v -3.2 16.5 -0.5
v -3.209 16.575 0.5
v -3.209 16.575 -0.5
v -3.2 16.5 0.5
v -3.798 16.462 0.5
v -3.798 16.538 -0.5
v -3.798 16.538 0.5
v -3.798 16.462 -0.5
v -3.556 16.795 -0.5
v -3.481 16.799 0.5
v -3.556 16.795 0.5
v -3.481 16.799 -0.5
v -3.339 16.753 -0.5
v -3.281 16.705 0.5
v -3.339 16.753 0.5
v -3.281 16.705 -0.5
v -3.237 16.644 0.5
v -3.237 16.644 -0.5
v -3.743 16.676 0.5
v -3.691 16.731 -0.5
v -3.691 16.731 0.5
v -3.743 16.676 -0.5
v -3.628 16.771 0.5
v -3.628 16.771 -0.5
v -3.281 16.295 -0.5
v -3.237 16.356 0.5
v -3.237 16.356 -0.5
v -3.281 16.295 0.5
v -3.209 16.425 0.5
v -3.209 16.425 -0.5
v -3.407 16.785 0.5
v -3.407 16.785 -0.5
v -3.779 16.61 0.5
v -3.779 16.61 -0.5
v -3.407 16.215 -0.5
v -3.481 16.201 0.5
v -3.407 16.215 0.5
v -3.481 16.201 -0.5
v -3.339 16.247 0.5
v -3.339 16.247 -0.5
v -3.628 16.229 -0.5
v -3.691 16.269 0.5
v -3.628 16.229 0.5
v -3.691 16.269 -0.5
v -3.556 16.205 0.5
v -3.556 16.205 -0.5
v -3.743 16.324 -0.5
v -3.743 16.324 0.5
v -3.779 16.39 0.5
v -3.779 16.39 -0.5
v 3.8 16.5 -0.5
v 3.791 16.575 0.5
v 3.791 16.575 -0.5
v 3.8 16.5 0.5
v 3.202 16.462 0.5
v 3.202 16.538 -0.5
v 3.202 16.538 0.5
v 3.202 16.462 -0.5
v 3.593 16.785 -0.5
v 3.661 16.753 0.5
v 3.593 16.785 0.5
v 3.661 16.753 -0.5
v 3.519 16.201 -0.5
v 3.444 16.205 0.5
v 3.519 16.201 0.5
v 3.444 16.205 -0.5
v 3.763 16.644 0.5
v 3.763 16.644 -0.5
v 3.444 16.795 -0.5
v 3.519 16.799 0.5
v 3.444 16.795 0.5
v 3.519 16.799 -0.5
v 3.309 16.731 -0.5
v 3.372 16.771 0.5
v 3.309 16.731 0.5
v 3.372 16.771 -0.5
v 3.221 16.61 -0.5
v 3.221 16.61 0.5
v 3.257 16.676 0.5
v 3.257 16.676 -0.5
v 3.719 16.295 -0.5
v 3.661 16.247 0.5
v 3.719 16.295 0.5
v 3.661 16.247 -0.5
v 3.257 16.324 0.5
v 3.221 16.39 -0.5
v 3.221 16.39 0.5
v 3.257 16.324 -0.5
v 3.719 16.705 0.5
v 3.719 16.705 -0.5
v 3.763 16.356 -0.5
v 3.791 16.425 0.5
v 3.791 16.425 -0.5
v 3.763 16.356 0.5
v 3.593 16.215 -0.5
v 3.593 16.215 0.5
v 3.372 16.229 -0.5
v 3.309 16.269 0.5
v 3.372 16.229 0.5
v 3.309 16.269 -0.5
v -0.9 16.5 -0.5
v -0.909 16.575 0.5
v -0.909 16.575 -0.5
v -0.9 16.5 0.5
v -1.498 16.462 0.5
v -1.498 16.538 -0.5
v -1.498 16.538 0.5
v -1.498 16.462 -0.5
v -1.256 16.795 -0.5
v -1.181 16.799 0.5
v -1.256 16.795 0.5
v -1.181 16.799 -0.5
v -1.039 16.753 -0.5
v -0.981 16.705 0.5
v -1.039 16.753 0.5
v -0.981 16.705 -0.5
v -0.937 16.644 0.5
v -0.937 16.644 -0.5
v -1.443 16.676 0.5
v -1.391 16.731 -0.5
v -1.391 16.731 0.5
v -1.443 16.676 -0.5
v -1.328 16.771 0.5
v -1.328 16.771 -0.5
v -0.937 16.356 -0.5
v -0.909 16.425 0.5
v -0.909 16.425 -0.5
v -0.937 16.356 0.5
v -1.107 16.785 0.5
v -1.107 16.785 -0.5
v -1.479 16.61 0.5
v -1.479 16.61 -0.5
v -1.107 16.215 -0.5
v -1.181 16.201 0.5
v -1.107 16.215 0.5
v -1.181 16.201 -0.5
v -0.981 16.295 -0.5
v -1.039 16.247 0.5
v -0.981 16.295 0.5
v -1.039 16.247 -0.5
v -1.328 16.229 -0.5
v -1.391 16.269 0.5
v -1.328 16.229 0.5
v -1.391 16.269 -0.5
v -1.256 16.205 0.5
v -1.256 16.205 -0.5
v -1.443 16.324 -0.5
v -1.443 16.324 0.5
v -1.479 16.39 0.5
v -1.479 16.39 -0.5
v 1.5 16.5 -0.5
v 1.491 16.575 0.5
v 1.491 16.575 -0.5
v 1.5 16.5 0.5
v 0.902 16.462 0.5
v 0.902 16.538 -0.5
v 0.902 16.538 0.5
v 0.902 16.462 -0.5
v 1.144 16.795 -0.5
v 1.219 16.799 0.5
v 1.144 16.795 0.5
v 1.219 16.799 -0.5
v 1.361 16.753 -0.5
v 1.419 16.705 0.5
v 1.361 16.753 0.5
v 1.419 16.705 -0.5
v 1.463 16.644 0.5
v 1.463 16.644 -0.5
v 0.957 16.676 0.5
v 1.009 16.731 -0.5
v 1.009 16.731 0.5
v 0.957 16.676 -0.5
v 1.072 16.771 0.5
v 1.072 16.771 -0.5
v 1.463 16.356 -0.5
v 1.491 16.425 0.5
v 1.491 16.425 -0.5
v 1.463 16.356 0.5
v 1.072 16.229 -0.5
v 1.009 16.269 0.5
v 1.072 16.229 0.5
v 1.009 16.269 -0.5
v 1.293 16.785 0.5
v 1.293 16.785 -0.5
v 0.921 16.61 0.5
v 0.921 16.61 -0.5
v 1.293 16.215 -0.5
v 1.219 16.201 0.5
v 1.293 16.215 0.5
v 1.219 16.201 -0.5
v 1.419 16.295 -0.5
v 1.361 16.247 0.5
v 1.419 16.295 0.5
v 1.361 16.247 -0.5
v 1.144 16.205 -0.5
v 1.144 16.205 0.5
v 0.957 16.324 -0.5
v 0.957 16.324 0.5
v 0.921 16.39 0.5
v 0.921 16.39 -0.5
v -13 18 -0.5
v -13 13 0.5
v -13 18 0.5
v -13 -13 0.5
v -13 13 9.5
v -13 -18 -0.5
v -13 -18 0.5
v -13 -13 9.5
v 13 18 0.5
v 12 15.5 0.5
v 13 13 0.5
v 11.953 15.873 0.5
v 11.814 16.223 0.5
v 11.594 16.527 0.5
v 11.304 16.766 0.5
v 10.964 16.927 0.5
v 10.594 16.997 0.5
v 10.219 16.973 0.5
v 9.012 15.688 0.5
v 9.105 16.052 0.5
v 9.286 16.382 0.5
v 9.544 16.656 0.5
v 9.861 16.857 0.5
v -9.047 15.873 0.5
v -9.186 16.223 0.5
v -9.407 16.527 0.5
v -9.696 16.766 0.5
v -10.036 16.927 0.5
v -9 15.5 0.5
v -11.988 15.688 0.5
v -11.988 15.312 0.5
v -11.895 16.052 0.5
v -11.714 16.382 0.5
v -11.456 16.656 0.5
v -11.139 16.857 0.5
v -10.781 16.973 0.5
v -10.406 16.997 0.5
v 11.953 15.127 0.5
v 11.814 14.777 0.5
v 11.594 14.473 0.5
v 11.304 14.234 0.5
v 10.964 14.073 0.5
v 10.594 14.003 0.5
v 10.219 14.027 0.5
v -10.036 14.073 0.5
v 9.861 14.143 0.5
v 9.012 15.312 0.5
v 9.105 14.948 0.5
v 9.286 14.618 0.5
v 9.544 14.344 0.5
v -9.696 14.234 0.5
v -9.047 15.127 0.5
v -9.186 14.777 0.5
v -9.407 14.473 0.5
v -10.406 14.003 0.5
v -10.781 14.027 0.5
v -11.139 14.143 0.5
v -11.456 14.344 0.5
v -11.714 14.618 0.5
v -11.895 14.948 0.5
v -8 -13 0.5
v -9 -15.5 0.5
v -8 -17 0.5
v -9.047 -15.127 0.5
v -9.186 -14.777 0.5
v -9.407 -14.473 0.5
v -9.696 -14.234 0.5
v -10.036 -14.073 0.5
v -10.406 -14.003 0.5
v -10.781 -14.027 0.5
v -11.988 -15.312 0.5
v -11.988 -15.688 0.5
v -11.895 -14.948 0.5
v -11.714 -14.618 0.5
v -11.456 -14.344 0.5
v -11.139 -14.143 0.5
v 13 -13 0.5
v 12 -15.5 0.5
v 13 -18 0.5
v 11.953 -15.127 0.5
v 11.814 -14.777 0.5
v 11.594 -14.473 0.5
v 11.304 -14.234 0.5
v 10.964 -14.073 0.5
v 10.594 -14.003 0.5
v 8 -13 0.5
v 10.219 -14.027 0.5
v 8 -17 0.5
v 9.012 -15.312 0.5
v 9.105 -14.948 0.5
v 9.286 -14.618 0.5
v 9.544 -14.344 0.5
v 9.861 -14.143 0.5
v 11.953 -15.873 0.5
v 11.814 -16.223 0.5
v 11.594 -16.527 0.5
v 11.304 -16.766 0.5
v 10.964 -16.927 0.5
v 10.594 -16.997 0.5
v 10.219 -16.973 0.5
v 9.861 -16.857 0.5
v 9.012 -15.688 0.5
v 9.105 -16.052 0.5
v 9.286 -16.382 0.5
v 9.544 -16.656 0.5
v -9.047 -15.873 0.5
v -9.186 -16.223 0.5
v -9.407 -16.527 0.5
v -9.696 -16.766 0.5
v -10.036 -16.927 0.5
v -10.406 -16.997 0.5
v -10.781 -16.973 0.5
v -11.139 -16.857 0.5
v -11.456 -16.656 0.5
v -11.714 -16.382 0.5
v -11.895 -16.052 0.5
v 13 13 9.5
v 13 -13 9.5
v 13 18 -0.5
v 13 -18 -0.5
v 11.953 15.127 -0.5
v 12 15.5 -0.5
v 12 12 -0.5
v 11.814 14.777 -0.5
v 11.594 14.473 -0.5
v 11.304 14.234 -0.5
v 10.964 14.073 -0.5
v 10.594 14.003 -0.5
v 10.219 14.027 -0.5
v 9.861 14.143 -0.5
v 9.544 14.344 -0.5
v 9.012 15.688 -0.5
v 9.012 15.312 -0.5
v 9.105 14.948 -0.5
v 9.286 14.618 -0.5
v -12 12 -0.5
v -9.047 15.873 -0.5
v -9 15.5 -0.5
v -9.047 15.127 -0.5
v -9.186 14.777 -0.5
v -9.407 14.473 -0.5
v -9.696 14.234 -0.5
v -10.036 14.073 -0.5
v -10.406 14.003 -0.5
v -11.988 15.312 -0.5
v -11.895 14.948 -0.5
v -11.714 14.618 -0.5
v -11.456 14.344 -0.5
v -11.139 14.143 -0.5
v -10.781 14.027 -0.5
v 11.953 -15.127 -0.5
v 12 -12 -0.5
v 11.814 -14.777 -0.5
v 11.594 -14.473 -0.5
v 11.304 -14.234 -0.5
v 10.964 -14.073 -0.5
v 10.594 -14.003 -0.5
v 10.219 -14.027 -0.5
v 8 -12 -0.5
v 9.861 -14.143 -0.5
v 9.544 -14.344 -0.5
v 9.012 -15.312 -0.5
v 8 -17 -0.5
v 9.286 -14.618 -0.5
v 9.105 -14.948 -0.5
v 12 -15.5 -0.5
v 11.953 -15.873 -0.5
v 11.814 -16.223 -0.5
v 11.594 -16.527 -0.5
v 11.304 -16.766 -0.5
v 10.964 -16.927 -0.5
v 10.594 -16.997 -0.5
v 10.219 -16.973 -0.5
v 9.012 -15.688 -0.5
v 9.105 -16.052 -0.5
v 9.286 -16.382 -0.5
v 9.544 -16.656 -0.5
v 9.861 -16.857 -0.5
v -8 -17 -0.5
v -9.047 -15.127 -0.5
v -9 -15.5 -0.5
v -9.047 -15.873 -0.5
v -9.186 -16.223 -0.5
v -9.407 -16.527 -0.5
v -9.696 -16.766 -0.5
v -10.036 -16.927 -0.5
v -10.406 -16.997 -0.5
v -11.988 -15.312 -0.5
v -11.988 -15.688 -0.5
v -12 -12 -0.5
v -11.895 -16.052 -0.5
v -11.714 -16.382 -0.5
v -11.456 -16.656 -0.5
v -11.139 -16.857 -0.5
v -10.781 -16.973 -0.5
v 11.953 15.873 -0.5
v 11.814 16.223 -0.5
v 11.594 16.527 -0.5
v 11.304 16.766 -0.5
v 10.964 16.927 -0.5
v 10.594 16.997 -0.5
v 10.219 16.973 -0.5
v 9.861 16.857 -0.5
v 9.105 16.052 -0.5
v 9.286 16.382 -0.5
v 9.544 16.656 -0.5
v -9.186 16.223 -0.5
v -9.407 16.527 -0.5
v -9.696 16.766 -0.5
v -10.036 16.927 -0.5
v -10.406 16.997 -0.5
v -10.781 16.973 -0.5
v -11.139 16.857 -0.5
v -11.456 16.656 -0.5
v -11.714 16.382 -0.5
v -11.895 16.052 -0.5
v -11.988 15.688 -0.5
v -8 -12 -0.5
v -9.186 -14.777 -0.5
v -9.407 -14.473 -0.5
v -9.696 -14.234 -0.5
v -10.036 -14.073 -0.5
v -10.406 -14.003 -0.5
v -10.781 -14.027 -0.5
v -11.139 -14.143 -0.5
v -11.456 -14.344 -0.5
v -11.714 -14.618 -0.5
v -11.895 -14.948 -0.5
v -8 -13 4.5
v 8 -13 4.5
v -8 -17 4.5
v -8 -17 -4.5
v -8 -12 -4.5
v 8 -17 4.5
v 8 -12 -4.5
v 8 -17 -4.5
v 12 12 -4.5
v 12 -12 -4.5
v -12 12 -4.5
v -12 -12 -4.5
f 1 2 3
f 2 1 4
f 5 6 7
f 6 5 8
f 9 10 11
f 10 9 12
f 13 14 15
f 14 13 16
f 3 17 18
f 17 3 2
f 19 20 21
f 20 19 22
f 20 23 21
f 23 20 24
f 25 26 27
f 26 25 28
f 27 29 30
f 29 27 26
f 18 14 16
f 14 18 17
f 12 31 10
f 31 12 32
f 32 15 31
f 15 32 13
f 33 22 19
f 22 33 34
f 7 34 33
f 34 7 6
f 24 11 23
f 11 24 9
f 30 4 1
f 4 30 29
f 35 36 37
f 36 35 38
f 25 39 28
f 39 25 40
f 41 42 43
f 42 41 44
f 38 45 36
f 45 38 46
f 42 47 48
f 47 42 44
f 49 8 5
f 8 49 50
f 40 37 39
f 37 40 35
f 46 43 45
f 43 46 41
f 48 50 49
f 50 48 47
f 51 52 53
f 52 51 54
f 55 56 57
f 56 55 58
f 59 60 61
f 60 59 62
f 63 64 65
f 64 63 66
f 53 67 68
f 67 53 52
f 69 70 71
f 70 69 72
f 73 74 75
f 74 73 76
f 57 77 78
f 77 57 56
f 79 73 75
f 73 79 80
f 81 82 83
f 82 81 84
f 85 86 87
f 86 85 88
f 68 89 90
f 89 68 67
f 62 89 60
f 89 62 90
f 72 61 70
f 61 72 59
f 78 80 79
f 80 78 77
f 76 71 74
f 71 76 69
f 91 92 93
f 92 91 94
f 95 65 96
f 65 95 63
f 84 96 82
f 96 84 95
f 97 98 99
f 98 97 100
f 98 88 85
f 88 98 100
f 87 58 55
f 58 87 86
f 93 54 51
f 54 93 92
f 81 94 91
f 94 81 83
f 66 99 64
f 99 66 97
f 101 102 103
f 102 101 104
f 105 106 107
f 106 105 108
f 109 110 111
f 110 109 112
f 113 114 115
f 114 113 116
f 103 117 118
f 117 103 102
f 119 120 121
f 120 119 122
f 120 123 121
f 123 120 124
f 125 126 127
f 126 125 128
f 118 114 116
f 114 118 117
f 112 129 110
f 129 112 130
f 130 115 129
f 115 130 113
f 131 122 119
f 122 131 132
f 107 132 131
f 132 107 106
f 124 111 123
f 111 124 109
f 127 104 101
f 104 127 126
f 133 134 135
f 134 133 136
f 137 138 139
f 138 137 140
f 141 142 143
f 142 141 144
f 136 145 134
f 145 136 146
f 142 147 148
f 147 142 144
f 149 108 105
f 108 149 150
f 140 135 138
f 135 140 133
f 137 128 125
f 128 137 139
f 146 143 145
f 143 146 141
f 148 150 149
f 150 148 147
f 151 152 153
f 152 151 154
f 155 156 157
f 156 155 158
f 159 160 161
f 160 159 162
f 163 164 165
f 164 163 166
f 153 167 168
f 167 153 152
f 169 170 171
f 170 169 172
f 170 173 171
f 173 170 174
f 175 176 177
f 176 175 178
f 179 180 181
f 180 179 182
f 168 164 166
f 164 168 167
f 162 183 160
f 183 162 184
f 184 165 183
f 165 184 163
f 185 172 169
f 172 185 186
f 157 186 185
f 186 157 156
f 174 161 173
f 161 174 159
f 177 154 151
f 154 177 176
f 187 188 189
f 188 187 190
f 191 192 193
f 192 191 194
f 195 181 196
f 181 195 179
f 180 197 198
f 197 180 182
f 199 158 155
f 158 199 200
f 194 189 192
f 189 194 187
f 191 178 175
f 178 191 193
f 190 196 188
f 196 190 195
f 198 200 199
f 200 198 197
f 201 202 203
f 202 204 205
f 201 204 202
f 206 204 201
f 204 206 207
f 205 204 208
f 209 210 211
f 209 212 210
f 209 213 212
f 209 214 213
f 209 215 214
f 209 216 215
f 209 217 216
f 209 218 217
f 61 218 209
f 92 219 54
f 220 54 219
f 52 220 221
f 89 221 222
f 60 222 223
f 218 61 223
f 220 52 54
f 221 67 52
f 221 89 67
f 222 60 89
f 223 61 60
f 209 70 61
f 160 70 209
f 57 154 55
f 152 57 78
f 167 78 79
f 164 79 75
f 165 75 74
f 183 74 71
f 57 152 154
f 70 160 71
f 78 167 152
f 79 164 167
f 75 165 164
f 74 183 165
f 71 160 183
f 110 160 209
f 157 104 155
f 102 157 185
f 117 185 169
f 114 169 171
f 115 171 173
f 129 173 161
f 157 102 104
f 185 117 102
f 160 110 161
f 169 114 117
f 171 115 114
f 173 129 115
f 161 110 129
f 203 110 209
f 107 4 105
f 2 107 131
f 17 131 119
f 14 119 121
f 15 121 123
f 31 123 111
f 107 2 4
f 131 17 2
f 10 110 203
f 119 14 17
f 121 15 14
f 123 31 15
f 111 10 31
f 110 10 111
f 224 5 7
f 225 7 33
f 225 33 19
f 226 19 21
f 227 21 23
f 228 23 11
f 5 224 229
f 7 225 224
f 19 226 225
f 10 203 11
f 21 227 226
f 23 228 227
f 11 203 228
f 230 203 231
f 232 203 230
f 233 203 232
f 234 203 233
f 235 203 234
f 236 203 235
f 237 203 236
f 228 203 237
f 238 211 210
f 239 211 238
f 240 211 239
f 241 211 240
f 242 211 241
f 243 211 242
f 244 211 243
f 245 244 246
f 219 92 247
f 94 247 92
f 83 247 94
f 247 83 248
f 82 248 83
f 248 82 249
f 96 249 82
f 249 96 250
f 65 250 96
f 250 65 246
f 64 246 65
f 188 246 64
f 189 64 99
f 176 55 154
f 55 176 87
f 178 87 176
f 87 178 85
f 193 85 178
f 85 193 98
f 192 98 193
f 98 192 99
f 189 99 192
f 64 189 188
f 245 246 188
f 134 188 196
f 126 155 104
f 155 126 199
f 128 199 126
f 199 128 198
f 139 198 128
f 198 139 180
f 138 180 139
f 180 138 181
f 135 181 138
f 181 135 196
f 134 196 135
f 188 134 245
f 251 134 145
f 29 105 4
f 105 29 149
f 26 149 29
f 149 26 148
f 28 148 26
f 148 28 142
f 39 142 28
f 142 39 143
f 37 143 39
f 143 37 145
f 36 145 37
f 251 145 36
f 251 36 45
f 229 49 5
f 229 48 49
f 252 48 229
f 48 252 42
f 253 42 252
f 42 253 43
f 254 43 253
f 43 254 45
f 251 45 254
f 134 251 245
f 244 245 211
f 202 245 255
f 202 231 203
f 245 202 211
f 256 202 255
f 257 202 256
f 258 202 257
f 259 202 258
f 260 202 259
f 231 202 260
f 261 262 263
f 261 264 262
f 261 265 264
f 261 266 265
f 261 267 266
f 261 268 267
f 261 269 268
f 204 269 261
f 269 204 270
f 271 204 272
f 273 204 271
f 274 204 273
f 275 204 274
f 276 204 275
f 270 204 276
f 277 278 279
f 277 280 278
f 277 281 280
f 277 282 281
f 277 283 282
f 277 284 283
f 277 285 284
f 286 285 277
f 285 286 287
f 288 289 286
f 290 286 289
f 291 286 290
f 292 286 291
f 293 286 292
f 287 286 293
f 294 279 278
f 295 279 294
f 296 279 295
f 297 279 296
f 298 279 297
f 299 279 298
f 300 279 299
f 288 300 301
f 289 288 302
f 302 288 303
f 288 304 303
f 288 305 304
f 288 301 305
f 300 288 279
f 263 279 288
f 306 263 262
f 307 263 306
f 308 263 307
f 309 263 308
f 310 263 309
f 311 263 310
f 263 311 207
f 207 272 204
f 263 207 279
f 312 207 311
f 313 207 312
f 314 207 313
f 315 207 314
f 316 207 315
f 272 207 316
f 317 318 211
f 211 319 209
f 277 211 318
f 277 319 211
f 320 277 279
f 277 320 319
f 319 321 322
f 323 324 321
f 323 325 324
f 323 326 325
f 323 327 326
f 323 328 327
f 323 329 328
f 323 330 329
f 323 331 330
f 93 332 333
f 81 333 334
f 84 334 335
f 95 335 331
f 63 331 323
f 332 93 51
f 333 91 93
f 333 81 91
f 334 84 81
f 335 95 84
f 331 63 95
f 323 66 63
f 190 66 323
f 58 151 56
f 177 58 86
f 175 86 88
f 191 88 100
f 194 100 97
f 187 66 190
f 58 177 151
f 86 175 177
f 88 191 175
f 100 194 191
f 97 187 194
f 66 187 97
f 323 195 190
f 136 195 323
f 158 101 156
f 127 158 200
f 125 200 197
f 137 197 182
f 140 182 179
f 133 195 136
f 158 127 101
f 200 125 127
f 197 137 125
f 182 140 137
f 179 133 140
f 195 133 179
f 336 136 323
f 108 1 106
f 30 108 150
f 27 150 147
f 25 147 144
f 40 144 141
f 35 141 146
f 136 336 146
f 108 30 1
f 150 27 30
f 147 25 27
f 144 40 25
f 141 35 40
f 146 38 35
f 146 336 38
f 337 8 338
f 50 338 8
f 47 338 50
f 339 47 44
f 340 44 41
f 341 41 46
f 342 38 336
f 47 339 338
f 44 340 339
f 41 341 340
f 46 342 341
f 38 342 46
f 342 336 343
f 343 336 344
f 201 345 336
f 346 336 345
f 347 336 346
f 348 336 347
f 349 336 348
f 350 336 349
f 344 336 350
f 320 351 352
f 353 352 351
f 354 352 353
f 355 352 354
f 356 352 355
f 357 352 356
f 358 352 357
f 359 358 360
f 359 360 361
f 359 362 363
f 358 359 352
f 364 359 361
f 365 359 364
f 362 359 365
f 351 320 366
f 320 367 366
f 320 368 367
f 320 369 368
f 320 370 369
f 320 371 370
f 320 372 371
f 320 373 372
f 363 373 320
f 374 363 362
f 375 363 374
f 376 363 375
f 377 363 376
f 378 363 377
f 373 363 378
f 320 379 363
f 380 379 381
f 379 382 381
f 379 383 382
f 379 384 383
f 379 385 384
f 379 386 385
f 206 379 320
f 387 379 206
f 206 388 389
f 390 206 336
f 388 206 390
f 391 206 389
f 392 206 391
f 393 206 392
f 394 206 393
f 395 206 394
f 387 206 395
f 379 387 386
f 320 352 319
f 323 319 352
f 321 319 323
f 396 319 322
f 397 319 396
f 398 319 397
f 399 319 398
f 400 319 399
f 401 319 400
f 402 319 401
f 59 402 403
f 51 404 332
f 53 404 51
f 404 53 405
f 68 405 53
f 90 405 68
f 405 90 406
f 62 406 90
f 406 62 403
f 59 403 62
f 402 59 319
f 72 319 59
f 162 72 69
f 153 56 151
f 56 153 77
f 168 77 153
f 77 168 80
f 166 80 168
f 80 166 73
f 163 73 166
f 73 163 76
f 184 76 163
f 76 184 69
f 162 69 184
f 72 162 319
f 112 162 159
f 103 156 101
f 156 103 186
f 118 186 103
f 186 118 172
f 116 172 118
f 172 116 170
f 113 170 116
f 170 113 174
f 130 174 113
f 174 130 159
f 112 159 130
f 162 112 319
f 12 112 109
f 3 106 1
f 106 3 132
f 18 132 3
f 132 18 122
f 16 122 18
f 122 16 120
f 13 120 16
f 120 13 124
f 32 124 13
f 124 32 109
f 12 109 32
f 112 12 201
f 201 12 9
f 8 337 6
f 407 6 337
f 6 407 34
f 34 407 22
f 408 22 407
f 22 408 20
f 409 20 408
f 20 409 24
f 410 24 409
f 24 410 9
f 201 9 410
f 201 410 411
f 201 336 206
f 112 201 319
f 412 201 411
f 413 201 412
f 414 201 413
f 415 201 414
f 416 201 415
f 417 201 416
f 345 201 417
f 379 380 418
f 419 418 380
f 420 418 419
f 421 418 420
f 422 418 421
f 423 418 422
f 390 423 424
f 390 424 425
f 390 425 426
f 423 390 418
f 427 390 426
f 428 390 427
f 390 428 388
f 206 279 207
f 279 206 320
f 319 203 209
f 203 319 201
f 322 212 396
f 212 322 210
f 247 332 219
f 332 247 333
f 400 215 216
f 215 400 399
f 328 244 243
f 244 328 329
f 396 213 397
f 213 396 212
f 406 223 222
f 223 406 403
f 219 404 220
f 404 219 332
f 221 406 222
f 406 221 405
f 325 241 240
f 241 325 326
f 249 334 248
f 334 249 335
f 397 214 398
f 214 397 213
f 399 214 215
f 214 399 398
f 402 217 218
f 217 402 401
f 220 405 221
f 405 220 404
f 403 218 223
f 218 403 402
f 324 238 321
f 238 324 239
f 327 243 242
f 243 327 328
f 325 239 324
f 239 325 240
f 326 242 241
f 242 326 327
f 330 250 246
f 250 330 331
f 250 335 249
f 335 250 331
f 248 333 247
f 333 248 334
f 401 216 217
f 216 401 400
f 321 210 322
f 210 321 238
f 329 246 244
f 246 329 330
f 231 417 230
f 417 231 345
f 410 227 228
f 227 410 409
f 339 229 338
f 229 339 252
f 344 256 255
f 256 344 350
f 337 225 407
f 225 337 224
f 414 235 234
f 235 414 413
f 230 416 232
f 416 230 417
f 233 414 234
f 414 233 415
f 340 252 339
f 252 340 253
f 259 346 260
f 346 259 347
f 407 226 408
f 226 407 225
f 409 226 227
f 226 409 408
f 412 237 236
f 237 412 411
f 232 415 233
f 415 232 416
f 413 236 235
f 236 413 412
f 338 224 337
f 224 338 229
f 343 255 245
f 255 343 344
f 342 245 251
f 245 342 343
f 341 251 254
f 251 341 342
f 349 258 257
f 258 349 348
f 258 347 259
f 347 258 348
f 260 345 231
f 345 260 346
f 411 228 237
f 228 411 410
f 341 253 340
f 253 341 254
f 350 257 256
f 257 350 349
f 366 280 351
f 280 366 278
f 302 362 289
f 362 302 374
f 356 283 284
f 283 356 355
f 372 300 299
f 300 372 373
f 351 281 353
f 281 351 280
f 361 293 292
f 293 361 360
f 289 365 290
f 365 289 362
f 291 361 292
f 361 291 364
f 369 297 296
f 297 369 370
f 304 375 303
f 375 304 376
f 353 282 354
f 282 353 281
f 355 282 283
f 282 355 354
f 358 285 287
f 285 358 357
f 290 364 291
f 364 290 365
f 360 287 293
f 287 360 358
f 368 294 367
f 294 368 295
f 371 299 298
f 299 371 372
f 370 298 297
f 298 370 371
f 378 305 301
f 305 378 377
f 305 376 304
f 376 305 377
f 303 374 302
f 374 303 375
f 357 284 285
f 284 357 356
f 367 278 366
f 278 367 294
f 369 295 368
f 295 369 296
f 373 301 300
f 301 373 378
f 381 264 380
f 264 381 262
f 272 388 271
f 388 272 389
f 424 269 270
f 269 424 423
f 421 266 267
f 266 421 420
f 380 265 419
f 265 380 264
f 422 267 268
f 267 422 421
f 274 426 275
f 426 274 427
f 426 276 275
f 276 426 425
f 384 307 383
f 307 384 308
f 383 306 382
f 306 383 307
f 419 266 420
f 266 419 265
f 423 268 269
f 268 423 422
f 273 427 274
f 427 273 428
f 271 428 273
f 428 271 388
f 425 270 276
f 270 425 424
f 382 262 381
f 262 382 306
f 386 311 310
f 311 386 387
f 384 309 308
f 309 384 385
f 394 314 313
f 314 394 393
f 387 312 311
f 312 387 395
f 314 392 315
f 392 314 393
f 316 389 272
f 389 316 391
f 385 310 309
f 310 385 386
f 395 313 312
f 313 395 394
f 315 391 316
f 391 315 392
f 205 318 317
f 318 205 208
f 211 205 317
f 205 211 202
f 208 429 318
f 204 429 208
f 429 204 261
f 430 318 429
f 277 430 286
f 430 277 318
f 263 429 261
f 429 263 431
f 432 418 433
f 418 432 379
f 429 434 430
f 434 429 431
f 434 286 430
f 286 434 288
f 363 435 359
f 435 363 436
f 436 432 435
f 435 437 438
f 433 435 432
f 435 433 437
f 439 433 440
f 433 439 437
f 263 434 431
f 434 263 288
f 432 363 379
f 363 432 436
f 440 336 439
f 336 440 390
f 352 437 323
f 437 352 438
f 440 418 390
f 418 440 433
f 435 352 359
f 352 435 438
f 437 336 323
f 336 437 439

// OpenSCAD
module gps_module() {
    union() {
        // Main Board
        difference() {
            cube([26,36,1], center=true);
            // Mounting Holes
            translate([10.5, 15.5, 0]) {
                cylinder(h = 5, d = 3, center=true, $fn=25);
            }
            translate([-10.5, 15.5, 0]) {
                cylinder(h = 5, d = 3, center=true, $fn=25);
            }
            translate([10.5, -15.5, 0]) {
                cylinder(h = 5, d = 3, center=true, $fn=25);
            }
            translate([-10.5, -15.5, 0]) {
                cylinder(h = 5, d = 3, center=true, $fn=25);
            }
            // Data Holes
            translate([0,16.5,0]) {
                translate([-3.5, 0, 0]) {
                    cylinder(h=5, d= 0.6, center=true, $fn=25);
                }
                translate([3.5, 0, 0]) {
                    cylinder(h=5, d= 0.6, center=true, $fn=25);
                }
                translate([-1.2, 0, 0]) {
                    cylinder(h=5, d= 0.6, center=true, $fn=25);
                }
                translate([1.2, 0, 0]) {
                    cylinder(h=5, d= 0.6, center=true, $fn=25);
                }
            }
        }
        
        // Antenna
        translate([0,0,5]) {
            cube([26,26,9], center=true);
        }
        
        // Cable
        translate([0,-13,0]) {
            cube([16, 8,9], center=true);
        }
        
        // Components (front)
        translate([0,0,-2.5] ){
            cube([24, 24, 4], center=true);
        }
    }
}

gps_module();
